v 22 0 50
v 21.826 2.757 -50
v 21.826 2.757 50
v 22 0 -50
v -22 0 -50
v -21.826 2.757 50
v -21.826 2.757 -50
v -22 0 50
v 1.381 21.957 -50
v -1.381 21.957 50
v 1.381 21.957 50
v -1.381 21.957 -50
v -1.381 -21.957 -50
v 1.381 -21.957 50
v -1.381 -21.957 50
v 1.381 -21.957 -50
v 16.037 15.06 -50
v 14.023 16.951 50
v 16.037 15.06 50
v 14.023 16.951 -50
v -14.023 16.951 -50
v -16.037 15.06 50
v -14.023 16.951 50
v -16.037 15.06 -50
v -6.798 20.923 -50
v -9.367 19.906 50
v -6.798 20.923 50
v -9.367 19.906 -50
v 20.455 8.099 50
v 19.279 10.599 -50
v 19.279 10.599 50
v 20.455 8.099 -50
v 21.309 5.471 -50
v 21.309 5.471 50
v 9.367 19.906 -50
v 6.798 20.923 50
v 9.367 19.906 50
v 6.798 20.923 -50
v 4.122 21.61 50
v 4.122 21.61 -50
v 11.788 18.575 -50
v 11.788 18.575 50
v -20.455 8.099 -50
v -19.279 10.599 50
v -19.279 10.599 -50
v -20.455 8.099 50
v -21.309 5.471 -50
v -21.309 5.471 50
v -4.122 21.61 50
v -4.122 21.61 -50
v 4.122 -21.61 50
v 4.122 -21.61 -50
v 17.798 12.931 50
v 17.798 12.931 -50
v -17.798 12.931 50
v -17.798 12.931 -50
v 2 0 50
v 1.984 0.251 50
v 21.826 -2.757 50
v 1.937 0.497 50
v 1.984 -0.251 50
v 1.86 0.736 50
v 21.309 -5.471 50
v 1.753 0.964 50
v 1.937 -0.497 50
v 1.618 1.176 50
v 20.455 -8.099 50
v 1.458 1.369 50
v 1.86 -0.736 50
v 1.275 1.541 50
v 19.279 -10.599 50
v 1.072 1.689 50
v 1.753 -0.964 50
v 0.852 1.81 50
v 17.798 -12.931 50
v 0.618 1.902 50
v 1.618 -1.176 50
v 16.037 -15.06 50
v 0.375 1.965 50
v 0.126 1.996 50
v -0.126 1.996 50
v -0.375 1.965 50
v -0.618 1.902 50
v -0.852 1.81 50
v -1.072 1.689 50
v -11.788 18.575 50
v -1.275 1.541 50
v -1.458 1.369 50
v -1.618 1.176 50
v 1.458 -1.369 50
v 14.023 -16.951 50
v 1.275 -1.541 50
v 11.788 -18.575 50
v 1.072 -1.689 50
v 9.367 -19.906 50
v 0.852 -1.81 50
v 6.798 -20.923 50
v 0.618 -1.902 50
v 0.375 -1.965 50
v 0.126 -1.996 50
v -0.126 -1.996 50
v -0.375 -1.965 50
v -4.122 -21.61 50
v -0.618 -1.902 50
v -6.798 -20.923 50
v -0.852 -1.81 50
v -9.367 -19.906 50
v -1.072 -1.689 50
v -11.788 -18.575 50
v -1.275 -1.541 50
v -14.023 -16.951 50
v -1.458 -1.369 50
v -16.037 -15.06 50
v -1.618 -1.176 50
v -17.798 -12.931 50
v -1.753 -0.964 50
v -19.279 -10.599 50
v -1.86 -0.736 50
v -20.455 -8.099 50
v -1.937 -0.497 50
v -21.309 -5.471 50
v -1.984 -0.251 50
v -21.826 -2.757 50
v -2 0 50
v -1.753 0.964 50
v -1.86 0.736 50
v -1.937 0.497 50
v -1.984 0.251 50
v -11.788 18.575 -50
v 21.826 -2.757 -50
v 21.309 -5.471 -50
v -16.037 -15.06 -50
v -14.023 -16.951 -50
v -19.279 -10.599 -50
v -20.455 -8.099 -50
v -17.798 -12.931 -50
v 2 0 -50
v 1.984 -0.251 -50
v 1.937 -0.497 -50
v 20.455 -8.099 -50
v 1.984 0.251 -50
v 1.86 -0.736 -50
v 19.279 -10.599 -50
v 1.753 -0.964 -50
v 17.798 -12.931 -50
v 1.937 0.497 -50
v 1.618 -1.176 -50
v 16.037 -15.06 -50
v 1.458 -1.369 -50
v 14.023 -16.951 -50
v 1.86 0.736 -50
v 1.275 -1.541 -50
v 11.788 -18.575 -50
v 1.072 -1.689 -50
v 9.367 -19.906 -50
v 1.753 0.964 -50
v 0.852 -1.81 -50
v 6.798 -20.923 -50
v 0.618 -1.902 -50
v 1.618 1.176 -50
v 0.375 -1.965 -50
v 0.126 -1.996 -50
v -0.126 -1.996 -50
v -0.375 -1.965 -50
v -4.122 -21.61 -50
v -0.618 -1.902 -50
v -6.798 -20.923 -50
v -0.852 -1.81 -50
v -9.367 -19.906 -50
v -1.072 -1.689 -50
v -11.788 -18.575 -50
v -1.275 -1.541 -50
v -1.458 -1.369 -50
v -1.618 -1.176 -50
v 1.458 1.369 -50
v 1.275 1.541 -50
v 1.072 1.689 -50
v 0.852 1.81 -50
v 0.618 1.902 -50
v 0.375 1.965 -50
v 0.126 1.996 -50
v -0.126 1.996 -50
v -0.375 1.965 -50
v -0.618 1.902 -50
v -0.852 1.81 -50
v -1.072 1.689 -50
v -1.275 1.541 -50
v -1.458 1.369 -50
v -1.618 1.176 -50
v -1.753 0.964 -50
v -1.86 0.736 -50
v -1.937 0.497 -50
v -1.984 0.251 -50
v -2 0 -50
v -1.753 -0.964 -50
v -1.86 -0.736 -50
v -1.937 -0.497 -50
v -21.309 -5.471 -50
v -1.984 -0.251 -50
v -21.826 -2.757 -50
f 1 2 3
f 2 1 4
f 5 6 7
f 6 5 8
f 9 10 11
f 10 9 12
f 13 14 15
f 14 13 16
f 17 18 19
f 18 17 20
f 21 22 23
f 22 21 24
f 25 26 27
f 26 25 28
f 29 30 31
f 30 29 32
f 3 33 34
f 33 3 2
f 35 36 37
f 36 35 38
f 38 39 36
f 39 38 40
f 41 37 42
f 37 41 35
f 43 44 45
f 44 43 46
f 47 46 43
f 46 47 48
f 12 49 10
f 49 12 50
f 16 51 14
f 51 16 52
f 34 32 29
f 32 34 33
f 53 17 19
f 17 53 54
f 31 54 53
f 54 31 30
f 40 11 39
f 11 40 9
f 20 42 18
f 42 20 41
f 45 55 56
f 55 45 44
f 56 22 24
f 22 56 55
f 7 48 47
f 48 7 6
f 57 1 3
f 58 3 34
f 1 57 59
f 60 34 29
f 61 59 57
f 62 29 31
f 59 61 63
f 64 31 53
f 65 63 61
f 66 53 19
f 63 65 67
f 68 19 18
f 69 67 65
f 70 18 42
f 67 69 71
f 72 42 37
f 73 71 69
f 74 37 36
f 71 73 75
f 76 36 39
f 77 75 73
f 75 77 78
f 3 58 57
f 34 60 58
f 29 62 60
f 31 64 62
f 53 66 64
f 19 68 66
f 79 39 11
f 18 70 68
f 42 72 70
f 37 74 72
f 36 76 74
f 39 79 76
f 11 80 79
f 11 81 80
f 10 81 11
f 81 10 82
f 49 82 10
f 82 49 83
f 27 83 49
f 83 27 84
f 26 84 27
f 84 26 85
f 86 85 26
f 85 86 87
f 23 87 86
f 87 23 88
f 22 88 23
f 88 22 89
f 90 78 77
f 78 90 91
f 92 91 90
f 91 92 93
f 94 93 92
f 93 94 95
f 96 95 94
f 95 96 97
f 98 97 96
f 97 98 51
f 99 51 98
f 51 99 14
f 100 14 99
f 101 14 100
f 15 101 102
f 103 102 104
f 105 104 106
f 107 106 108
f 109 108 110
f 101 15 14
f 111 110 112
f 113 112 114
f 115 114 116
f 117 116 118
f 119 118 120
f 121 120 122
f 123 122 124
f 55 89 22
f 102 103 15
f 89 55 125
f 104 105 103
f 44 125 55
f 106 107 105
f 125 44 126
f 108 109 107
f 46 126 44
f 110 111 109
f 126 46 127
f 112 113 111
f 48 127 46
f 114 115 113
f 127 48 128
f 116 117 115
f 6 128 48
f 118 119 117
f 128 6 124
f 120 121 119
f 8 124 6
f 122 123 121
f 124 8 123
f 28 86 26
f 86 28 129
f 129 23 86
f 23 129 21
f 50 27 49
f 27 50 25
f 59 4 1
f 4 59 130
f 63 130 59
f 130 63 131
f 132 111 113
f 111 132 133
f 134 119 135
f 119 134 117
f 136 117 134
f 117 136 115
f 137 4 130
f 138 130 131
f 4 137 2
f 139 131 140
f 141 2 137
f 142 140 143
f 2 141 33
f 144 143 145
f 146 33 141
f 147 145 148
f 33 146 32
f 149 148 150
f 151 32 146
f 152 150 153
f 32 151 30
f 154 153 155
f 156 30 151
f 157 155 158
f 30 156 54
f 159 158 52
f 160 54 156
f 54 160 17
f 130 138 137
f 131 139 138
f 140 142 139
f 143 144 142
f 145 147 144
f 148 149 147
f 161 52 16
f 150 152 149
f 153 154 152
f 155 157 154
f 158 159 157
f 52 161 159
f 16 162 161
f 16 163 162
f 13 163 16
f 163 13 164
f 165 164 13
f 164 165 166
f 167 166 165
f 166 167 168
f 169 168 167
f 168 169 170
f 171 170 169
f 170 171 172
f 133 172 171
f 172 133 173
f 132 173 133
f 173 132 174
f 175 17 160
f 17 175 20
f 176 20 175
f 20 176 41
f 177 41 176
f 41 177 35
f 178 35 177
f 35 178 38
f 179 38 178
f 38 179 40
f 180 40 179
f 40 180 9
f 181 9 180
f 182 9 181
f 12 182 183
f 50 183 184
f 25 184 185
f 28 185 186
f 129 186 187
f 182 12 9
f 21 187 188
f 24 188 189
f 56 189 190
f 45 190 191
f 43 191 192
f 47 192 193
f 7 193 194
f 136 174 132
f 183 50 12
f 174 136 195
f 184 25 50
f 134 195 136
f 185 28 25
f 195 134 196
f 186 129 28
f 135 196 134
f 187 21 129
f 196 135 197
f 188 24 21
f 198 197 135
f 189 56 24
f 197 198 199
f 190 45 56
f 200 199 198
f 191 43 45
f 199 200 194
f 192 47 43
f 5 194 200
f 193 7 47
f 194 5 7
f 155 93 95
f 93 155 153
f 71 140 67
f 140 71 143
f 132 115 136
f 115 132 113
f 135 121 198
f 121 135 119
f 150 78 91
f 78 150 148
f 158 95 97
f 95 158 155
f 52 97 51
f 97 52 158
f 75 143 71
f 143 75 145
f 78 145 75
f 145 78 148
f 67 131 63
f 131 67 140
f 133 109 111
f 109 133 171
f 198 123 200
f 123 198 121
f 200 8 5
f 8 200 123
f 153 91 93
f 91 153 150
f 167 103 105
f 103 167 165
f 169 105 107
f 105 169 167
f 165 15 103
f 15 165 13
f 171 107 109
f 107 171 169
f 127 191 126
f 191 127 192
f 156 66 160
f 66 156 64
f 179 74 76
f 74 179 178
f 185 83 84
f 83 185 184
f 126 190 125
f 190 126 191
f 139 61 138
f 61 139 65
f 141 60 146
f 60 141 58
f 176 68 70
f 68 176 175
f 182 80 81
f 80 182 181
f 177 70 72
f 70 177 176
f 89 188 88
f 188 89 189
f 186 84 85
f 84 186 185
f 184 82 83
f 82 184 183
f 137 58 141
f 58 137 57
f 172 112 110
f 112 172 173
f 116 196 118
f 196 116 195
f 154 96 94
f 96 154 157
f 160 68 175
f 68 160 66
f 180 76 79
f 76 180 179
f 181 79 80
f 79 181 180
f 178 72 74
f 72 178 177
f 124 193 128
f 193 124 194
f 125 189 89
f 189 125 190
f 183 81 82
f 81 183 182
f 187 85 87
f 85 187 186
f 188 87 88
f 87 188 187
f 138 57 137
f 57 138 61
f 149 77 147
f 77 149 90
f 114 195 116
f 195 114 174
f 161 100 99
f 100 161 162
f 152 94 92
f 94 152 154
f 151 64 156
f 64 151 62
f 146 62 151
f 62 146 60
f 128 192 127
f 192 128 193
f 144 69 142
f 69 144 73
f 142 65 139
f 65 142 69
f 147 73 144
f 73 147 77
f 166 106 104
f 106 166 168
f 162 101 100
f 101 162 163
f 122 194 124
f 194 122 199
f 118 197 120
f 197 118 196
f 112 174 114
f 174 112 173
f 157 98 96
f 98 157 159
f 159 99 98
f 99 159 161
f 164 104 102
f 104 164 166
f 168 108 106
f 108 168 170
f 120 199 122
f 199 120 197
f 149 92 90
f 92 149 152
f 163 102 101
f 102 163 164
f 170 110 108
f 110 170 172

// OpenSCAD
$fn = 50;


difference() {
	union() {
		translate(v = [0, 0, -50.0000000000]) {
			cylinder(h = 100, r = 22.0000000000);
		}
	}
	union() {
		translate(v = [0, 0, -100.0000000000]) {
			cylinder(h = 200, r = 2.0000000000);
		}
	}
}
